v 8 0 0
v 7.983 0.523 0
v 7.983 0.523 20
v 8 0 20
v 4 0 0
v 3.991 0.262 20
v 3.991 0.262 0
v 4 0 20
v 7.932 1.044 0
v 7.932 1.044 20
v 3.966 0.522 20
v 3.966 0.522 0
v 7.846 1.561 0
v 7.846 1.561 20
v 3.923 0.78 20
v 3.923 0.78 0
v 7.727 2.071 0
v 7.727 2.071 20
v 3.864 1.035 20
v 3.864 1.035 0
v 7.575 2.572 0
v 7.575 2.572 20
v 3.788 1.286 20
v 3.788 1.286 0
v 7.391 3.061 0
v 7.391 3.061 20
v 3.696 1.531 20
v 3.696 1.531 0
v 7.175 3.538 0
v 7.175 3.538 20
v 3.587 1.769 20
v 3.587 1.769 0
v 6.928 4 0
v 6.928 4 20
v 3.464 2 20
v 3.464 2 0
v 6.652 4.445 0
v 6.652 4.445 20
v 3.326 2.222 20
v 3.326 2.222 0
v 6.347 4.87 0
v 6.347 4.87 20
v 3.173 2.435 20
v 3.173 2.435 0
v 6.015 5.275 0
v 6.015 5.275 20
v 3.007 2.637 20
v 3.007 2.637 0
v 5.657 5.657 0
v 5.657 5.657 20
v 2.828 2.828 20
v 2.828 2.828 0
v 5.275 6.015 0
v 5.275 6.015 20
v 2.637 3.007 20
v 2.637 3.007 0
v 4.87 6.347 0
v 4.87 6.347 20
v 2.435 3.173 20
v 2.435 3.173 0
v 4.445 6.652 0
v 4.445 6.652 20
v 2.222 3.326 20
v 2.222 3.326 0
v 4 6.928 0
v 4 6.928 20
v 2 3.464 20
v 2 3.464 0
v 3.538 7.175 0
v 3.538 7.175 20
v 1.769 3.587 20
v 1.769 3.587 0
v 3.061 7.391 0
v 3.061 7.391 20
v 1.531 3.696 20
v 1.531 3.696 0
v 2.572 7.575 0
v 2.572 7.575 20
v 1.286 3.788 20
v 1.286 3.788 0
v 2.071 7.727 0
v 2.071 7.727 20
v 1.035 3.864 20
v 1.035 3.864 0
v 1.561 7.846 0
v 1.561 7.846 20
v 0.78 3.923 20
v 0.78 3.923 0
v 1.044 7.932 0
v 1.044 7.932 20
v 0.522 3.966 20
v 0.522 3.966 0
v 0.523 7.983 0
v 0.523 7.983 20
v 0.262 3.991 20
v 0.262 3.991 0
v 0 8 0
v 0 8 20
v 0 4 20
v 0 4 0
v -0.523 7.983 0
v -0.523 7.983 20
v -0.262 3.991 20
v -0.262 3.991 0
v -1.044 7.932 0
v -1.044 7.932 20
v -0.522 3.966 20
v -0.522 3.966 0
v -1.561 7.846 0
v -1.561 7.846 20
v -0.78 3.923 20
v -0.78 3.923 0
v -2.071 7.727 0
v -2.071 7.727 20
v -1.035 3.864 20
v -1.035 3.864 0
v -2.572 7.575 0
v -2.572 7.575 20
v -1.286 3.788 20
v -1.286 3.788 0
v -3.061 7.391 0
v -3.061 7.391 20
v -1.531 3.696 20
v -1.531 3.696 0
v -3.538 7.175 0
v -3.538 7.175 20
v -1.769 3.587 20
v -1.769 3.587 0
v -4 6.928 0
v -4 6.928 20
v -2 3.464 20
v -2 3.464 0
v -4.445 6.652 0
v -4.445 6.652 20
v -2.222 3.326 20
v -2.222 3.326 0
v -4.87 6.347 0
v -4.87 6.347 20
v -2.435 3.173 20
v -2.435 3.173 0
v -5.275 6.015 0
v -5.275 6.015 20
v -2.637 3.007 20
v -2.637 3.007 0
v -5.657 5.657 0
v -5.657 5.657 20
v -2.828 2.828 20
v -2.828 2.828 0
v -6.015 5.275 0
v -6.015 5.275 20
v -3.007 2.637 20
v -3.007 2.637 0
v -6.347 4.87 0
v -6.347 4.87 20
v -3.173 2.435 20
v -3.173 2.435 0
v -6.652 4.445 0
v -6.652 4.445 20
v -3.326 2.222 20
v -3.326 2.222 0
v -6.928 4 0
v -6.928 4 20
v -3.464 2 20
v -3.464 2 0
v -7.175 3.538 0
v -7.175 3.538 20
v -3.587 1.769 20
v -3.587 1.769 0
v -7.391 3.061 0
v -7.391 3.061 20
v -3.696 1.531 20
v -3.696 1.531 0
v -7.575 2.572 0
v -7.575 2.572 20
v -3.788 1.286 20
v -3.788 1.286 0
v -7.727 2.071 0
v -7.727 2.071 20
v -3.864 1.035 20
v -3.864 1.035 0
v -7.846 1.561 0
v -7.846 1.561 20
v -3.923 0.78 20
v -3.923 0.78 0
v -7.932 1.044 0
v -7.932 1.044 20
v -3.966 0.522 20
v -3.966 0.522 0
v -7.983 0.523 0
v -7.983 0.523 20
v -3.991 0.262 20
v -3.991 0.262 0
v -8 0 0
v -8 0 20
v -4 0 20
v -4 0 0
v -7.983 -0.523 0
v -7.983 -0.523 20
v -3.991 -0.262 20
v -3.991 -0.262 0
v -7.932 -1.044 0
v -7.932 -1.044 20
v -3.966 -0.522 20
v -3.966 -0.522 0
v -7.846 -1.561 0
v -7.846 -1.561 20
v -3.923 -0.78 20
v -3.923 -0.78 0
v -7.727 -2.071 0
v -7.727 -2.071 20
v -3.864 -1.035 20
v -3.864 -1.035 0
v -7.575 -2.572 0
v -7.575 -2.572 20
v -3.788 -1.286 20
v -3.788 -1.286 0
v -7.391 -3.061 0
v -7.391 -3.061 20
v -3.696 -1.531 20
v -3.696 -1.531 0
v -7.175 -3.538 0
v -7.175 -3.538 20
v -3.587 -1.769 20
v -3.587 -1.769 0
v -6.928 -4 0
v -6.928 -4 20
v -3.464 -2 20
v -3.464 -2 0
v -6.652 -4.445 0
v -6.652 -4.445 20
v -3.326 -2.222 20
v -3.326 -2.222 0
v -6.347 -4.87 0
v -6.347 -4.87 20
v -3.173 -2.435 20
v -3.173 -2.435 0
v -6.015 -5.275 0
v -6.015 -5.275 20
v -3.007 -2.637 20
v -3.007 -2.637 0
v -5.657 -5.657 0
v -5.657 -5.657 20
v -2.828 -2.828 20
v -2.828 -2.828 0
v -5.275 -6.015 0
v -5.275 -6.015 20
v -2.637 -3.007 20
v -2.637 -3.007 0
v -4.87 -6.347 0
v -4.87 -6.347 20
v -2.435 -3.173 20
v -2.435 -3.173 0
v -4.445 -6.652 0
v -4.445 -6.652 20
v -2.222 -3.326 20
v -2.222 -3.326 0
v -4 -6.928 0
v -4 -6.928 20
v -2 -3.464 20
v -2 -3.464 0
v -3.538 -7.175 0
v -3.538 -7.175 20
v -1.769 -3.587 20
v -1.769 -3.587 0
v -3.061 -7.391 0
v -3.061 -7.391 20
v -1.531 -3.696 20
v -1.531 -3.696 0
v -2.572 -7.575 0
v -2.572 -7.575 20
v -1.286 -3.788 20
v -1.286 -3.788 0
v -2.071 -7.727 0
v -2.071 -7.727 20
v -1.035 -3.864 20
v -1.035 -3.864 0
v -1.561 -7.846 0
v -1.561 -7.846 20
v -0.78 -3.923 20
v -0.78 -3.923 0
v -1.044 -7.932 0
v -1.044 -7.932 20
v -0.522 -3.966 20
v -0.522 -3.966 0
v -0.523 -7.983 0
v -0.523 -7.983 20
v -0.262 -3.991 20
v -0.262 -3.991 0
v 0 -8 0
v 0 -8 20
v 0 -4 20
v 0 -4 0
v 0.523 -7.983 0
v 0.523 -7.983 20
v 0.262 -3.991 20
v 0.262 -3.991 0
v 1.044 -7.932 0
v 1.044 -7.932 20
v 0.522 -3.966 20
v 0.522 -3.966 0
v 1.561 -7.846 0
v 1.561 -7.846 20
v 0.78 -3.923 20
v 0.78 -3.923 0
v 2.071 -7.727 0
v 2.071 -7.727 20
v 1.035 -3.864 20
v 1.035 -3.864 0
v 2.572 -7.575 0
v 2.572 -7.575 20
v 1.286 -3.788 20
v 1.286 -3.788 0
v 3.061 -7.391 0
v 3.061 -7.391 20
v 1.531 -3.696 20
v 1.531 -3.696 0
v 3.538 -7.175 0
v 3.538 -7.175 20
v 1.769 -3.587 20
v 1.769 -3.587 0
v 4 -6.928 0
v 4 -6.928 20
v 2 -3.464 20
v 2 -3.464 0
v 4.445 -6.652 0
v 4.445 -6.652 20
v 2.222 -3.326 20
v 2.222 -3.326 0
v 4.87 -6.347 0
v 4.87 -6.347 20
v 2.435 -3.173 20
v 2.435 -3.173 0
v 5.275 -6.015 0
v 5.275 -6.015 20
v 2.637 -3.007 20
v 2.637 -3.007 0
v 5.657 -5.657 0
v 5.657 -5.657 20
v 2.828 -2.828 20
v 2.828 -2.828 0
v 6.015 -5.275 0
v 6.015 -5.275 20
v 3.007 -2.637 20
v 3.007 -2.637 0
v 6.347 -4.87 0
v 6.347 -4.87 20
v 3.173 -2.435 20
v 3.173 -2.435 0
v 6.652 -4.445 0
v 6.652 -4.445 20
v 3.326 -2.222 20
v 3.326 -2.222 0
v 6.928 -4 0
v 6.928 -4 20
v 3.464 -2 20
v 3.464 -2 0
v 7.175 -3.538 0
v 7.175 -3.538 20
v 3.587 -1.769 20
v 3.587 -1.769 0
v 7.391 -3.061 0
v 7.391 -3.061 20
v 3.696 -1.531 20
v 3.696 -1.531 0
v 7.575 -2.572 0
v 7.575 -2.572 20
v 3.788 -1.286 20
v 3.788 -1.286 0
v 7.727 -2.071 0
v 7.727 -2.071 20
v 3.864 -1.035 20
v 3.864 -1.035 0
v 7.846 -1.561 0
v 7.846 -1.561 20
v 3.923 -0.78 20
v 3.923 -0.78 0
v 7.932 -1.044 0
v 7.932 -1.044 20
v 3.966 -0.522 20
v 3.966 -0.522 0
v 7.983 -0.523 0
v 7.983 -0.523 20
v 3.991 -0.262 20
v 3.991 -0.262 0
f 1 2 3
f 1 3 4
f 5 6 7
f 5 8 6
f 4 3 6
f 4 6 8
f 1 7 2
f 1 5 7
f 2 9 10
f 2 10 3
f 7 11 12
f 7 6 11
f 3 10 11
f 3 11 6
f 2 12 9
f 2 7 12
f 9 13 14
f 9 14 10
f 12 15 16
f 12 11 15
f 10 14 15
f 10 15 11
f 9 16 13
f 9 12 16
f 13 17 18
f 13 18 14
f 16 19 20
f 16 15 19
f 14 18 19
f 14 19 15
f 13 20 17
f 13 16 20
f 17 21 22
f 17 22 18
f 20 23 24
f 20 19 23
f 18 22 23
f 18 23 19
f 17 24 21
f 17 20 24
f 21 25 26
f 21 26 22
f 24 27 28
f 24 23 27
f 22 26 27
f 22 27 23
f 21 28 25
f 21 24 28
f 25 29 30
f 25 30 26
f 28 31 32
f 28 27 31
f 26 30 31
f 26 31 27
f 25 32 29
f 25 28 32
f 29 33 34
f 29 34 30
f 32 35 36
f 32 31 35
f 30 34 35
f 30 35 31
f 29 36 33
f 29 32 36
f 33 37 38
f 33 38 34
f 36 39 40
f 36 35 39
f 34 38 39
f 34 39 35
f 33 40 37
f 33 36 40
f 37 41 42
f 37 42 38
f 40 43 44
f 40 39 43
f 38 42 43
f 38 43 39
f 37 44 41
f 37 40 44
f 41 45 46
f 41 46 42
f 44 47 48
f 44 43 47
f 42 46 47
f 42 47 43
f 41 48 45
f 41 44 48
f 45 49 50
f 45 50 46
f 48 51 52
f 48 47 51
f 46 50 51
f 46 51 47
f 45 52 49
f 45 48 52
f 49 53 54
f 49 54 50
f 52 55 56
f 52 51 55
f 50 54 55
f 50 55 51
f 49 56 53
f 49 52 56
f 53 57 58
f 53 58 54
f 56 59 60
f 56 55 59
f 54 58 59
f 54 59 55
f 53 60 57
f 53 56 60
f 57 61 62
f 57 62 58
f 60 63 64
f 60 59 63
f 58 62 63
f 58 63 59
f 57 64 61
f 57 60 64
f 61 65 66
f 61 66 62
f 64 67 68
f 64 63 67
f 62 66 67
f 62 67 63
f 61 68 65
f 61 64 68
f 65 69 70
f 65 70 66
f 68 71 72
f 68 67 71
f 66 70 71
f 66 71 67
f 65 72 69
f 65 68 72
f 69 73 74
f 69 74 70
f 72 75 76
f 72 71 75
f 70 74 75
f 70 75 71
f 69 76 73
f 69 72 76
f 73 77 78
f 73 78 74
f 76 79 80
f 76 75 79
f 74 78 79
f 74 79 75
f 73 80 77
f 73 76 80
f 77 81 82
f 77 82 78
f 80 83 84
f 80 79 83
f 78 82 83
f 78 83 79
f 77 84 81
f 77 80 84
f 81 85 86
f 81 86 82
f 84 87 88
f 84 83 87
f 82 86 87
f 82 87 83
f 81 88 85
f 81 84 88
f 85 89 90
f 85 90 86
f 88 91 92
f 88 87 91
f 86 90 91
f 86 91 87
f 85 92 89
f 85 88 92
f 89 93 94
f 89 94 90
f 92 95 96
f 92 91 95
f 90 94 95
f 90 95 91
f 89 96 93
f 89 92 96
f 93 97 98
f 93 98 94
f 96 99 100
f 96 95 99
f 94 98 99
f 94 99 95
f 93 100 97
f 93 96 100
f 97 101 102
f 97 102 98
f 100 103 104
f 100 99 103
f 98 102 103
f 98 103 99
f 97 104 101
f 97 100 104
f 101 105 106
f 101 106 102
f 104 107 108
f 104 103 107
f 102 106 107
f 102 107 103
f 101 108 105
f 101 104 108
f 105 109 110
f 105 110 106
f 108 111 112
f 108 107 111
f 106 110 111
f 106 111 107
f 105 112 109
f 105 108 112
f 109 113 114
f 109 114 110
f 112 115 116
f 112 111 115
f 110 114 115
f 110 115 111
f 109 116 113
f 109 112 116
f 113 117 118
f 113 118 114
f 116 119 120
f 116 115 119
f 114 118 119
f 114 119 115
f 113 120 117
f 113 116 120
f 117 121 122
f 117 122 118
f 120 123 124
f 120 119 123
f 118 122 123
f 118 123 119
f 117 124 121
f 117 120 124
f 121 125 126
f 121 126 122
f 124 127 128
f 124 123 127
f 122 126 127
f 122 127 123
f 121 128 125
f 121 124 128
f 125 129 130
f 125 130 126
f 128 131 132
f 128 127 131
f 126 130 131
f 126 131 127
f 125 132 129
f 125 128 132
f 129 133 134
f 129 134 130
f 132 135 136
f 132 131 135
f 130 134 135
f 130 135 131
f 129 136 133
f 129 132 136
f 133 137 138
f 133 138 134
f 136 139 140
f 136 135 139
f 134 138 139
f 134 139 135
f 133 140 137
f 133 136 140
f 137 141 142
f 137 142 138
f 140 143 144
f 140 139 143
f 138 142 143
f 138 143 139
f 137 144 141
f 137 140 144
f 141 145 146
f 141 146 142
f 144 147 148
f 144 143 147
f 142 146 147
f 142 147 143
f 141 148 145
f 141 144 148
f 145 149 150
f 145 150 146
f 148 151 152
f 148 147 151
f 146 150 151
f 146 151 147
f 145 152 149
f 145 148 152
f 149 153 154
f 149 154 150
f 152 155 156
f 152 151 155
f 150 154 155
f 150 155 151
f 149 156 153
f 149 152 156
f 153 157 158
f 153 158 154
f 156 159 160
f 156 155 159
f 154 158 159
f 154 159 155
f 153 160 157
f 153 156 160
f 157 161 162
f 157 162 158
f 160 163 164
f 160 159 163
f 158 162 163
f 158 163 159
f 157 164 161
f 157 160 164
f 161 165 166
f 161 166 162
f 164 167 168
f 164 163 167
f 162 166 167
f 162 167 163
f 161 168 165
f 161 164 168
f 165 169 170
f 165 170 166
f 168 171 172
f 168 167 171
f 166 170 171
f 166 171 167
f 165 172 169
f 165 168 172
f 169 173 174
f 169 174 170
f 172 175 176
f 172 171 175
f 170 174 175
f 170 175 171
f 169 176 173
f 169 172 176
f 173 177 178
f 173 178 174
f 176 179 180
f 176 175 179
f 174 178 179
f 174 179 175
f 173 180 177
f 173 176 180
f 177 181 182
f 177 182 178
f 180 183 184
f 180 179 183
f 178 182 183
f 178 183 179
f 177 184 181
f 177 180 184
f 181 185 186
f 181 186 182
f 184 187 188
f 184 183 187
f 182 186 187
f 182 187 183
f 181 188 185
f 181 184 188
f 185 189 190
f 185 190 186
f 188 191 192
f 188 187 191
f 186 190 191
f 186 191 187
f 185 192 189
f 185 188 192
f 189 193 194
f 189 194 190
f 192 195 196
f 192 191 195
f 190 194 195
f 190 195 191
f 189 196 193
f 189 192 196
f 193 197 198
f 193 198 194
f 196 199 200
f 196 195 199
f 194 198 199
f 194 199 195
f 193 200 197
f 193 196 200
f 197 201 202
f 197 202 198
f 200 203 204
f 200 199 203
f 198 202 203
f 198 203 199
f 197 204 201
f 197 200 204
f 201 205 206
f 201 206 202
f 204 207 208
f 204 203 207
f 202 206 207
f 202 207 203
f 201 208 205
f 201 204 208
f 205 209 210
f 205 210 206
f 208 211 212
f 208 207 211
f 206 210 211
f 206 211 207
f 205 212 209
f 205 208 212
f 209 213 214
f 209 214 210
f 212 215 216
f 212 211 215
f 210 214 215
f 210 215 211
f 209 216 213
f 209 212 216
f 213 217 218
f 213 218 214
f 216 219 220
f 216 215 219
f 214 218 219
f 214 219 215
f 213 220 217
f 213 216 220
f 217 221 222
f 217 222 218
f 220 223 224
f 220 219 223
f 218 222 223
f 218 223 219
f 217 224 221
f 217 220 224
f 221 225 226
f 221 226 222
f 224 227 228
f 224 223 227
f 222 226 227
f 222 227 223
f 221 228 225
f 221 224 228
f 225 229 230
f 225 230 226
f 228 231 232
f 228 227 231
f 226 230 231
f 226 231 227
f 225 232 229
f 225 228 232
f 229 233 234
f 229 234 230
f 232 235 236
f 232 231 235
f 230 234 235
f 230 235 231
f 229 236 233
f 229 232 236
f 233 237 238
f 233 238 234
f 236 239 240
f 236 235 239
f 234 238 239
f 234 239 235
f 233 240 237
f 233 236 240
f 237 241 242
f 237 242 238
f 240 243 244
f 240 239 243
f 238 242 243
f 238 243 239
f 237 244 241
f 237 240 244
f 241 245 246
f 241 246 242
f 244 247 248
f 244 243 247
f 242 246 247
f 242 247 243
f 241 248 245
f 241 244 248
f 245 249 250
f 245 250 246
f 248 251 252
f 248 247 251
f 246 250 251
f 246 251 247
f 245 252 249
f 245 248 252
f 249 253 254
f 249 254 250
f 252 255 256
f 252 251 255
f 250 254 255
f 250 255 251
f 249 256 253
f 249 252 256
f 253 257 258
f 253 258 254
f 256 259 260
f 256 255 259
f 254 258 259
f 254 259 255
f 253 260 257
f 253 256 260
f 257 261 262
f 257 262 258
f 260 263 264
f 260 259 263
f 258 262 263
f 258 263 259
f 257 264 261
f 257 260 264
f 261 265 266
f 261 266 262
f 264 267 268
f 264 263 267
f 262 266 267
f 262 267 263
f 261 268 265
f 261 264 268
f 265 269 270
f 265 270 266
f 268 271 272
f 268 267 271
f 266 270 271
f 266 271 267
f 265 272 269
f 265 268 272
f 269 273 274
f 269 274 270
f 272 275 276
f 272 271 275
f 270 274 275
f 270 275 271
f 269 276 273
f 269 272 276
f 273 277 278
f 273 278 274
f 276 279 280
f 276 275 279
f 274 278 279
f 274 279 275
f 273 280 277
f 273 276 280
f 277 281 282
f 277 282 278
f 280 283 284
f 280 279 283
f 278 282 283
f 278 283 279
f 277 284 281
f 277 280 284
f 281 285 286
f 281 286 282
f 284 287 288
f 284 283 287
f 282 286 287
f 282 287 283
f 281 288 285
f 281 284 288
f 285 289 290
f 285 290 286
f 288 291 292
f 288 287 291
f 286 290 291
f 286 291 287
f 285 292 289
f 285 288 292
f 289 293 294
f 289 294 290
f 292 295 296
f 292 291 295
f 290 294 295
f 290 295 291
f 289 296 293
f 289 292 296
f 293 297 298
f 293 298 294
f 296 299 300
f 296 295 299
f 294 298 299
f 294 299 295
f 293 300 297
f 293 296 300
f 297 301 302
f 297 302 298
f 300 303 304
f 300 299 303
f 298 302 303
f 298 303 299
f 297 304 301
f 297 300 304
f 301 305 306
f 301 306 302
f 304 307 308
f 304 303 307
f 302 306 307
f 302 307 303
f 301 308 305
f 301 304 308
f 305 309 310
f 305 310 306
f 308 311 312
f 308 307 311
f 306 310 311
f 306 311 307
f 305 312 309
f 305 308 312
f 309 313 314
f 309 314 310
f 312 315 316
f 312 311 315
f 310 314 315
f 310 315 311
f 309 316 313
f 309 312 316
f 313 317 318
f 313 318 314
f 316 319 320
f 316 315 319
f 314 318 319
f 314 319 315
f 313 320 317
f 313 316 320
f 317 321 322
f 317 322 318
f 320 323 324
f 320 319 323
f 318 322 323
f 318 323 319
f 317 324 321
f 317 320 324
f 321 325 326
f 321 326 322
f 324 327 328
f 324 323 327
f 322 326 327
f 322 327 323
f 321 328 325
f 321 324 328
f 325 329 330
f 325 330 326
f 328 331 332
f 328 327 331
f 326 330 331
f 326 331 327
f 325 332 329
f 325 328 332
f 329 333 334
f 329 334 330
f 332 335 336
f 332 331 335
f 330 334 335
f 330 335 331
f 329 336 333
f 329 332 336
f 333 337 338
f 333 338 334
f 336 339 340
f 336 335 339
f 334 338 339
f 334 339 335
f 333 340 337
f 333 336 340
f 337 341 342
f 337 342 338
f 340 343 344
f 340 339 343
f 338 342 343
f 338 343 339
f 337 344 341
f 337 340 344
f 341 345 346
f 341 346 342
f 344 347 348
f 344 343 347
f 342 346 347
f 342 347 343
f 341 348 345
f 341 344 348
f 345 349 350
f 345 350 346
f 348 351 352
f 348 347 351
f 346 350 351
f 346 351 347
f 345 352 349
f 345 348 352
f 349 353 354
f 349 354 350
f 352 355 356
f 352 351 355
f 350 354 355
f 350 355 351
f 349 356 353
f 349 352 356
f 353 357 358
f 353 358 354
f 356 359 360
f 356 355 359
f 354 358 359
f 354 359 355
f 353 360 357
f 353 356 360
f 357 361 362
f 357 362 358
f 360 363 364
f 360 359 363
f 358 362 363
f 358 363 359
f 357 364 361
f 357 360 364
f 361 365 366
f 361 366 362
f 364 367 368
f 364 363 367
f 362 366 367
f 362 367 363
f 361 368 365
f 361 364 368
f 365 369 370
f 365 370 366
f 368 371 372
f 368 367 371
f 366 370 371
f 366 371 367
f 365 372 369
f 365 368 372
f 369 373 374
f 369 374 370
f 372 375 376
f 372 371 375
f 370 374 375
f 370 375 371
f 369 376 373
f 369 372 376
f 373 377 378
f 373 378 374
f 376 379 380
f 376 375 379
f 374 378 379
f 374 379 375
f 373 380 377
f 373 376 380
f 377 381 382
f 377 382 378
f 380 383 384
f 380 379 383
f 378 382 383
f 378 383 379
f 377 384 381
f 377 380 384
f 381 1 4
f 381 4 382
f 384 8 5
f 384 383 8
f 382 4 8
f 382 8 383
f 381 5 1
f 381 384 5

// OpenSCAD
// Original MechIntel educational model. CC0-1.0. Units: mm.
// Not a standardized or load-rated component.
$fn=96;
outer_diameter=16;
inner_diameter=8;
height=20;
difference(){ cylinder(d=outer_diameter,h=height); translate([0,0,-1]) cylinder(d=inner_diameter,h=height+2); }
